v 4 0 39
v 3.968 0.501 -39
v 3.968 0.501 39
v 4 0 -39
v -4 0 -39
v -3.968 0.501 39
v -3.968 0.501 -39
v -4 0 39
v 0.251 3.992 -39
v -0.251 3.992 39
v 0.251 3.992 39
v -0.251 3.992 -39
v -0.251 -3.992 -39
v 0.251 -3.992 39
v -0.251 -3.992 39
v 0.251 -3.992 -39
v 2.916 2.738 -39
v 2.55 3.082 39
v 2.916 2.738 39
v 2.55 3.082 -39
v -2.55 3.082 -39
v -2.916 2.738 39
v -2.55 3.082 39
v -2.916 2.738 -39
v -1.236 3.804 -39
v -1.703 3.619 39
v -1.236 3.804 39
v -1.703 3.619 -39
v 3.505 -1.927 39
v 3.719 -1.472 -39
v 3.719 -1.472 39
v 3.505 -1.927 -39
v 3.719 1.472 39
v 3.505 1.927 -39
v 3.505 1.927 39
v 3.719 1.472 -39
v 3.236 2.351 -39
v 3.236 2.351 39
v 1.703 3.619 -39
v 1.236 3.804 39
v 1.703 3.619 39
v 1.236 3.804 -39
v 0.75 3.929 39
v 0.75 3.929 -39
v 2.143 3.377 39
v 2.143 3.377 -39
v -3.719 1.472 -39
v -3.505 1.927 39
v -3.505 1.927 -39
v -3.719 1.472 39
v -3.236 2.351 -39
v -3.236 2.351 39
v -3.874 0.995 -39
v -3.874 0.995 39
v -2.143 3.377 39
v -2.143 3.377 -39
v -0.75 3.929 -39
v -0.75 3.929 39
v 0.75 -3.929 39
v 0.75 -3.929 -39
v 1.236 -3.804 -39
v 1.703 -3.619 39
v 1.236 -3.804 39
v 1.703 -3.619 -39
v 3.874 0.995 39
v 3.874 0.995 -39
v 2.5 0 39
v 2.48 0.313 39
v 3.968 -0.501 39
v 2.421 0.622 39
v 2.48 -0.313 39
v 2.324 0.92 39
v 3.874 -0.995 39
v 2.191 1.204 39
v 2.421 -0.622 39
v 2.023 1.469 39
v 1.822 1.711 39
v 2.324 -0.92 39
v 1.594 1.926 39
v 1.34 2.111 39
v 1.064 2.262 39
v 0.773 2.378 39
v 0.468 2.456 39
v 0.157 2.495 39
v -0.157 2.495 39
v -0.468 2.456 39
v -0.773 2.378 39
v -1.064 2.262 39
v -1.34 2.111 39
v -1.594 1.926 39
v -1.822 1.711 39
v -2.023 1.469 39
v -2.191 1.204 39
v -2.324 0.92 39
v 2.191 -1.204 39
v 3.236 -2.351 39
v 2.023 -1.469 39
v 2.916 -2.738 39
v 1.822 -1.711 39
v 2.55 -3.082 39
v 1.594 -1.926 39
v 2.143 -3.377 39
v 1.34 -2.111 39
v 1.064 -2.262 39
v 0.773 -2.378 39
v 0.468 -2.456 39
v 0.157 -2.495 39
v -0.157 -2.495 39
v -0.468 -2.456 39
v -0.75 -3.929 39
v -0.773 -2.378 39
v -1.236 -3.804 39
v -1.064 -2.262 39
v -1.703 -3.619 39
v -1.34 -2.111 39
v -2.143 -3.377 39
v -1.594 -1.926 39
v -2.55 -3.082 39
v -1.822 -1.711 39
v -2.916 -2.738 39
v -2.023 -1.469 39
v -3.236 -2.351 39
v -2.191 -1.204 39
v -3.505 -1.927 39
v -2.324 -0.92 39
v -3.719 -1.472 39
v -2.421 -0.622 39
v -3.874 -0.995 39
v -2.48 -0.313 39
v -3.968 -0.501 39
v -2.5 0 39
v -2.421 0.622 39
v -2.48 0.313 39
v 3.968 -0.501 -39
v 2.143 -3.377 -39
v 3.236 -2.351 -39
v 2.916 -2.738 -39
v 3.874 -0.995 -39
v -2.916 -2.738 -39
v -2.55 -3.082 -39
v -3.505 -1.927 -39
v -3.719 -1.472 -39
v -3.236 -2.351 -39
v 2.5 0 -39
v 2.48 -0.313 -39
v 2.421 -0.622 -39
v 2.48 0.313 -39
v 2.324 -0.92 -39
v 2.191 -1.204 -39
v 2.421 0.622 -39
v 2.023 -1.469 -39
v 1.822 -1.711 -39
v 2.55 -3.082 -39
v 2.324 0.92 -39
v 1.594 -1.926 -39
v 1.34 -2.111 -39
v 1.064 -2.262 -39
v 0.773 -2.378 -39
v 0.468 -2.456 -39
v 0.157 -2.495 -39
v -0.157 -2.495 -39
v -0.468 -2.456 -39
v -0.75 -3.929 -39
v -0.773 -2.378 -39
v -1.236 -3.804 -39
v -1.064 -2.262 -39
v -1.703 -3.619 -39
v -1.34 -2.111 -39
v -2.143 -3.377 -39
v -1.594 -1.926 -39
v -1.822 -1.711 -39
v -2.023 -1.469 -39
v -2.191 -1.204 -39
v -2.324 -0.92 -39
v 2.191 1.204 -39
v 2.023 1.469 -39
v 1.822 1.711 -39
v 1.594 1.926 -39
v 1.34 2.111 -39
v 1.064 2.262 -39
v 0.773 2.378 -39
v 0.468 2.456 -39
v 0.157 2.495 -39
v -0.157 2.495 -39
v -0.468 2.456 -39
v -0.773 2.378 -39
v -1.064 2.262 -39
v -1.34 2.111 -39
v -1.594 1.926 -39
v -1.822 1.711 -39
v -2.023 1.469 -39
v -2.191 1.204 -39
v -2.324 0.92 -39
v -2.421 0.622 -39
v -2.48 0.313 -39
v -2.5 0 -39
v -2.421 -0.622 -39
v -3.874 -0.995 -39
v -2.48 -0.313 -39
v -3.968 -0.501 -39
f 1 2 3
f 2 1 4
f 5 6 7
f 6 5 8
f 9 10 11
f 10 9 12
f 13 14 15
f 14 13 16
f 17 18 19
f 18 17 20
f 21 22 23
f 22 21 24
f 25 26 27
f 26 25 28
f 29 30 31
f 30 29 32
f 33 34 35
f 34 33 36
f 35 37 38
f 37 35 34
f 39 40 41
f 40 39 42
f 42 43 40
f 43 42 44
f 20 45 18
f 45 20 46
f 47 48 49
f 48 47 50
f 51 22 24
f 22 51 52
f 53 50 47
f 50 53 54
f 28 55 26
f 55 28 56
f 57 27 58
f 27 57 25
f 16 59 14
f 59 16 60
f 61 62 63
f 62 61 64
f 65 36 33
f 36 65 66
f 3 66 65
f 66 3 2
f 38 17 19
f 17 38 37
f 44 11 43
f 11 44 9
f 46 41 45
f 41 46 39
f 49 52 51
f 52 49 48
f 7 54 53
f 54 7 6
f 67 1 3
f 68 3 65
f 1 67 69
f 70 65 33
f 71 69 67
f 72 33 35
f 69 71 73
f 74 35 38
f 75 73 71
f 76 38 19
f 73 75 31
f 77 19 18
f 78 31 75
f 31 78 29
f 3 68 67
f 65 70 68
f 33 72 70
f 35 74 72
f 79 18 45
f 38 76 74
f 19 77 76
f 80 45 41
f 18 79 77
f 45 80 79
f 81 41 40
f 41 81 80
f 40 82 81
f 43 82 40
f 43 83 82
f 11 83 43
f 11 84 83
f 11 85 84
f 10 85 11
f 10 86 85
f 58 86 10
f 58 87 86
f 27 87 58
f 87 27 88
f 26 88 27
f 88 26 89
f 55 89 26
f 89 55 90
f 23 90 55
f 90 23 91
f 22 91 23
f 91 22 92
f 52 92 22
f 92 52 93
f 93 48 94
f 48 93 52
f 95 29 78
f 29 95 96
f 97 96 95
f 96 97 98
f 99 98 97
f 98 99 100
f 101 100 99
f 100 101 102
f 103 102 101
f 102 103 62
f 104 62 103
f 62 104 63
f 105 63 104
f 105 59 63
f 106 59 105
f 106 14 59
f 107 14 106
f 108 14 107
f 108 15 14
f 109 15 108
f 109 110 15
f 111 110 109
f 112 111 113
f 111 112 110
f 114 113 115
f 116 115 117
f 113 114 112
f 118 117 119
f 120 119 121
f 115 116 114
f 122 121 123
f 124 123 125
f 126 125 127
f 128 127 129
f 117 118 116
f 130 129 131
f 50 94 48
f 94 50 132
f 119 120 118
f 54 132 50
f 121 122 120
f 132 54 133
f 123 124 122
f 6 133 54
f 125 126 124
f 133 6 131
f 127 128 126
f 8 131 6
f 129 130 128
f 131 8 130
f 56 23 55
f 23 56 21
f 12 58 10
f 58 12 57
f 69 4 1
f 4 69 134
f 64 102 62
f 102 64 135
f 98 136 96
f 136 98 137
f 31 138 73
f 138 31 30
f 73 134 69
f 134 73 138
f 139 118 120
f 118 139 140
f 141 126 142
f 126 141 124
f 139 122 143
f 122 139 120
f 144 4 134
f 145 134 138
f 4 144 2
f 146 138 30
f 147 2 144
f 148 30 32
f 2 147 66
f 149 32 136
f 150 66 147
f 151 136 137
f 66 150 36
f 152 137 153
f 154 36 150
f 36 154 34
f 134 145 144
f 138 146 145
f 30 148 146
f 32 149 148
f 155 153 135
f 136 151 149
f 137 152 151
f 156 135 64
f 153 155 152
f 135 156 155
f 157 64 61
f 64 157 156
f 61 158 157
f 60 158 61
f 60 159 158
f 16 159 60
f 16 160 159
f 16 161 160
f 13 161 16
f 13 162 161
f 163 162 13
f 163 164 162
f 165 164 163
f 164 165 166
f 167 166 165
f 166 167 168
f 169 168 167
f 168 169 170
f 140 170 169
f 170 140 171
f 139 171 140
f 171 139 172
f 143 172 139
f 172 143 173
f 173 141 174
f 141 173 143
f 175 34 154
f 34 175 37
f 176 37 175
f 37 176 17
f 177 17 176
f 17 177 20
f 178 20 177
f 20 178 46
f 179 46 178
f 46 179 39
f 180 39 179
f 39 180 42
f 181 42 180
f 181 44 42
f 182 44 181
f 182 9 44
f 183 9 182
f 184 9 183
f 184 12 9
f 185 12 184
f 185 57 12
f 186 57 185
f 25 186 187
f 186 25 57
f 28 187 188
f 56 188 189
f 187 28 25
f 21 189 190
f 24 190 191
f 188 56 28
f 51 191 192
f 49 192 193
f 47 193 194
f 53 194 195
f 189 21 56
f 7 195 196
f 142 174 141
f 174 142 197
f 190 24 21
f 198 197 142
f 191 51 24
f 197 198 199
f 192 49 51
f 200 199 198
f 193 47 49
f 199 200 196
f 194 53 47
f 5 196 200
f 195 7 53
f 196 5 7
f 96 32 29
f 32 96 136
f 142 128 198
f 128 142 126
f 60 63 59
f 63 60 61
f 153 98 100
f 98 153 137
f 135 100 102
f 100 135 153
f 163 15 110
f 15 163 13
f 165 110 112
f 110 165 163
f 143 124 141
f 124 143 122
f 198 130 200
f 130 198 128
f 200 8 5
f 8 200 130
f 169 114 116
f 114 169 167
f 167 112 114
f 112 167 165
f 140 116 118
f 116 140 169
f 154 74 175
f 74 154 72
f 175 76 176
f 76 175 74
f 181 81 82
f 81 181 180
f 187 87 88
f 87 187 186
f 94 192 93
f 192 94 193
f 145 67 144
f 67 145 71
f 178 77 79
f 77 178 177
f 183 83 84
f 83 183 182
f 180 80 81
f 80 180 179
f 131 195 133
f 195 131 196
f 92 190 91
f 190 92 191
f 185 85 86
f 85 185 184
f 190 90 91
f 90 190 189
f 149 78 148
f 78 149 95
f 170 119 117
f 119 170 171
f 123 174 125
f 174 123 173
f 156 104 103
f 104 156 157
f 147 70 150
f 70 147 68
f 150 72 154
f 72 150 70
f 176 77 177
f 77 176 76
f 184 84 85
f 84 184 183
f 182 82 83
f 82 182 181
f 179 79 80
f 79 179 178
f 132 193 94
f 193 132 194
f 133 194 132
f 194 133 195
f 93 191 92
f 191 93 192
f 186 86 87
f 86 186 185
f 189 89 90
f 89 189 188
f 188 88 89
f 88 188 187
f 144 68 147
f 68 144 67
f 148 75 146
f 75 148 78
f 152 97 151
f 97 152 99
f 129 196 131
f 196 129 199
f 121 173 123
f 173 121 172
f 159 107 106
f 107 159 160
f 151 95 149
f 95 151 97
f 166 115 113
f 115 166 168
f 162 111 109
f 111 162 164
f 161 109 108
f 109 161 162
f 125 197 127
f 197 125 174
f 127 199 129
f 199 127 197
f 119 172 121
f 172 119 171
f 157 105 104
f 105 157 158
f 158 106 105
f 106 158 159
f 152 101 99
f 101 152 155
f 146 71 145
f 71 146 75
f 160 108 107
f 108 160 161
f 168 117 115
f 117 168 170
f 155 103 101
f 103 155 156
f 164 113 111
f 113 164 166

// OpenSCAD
$fn = 50;


difference() {
	union() {
		translate(v = [0, 0, -39.0000000000]) {
			cylinder(h = 78, r = 4.0000000000);
		}
	}
	union() {
		translate(v = [0, 0, -100.0000000000]) {
			cylinder(h = 200, r = 2.5000000000);
		}
	}
}
